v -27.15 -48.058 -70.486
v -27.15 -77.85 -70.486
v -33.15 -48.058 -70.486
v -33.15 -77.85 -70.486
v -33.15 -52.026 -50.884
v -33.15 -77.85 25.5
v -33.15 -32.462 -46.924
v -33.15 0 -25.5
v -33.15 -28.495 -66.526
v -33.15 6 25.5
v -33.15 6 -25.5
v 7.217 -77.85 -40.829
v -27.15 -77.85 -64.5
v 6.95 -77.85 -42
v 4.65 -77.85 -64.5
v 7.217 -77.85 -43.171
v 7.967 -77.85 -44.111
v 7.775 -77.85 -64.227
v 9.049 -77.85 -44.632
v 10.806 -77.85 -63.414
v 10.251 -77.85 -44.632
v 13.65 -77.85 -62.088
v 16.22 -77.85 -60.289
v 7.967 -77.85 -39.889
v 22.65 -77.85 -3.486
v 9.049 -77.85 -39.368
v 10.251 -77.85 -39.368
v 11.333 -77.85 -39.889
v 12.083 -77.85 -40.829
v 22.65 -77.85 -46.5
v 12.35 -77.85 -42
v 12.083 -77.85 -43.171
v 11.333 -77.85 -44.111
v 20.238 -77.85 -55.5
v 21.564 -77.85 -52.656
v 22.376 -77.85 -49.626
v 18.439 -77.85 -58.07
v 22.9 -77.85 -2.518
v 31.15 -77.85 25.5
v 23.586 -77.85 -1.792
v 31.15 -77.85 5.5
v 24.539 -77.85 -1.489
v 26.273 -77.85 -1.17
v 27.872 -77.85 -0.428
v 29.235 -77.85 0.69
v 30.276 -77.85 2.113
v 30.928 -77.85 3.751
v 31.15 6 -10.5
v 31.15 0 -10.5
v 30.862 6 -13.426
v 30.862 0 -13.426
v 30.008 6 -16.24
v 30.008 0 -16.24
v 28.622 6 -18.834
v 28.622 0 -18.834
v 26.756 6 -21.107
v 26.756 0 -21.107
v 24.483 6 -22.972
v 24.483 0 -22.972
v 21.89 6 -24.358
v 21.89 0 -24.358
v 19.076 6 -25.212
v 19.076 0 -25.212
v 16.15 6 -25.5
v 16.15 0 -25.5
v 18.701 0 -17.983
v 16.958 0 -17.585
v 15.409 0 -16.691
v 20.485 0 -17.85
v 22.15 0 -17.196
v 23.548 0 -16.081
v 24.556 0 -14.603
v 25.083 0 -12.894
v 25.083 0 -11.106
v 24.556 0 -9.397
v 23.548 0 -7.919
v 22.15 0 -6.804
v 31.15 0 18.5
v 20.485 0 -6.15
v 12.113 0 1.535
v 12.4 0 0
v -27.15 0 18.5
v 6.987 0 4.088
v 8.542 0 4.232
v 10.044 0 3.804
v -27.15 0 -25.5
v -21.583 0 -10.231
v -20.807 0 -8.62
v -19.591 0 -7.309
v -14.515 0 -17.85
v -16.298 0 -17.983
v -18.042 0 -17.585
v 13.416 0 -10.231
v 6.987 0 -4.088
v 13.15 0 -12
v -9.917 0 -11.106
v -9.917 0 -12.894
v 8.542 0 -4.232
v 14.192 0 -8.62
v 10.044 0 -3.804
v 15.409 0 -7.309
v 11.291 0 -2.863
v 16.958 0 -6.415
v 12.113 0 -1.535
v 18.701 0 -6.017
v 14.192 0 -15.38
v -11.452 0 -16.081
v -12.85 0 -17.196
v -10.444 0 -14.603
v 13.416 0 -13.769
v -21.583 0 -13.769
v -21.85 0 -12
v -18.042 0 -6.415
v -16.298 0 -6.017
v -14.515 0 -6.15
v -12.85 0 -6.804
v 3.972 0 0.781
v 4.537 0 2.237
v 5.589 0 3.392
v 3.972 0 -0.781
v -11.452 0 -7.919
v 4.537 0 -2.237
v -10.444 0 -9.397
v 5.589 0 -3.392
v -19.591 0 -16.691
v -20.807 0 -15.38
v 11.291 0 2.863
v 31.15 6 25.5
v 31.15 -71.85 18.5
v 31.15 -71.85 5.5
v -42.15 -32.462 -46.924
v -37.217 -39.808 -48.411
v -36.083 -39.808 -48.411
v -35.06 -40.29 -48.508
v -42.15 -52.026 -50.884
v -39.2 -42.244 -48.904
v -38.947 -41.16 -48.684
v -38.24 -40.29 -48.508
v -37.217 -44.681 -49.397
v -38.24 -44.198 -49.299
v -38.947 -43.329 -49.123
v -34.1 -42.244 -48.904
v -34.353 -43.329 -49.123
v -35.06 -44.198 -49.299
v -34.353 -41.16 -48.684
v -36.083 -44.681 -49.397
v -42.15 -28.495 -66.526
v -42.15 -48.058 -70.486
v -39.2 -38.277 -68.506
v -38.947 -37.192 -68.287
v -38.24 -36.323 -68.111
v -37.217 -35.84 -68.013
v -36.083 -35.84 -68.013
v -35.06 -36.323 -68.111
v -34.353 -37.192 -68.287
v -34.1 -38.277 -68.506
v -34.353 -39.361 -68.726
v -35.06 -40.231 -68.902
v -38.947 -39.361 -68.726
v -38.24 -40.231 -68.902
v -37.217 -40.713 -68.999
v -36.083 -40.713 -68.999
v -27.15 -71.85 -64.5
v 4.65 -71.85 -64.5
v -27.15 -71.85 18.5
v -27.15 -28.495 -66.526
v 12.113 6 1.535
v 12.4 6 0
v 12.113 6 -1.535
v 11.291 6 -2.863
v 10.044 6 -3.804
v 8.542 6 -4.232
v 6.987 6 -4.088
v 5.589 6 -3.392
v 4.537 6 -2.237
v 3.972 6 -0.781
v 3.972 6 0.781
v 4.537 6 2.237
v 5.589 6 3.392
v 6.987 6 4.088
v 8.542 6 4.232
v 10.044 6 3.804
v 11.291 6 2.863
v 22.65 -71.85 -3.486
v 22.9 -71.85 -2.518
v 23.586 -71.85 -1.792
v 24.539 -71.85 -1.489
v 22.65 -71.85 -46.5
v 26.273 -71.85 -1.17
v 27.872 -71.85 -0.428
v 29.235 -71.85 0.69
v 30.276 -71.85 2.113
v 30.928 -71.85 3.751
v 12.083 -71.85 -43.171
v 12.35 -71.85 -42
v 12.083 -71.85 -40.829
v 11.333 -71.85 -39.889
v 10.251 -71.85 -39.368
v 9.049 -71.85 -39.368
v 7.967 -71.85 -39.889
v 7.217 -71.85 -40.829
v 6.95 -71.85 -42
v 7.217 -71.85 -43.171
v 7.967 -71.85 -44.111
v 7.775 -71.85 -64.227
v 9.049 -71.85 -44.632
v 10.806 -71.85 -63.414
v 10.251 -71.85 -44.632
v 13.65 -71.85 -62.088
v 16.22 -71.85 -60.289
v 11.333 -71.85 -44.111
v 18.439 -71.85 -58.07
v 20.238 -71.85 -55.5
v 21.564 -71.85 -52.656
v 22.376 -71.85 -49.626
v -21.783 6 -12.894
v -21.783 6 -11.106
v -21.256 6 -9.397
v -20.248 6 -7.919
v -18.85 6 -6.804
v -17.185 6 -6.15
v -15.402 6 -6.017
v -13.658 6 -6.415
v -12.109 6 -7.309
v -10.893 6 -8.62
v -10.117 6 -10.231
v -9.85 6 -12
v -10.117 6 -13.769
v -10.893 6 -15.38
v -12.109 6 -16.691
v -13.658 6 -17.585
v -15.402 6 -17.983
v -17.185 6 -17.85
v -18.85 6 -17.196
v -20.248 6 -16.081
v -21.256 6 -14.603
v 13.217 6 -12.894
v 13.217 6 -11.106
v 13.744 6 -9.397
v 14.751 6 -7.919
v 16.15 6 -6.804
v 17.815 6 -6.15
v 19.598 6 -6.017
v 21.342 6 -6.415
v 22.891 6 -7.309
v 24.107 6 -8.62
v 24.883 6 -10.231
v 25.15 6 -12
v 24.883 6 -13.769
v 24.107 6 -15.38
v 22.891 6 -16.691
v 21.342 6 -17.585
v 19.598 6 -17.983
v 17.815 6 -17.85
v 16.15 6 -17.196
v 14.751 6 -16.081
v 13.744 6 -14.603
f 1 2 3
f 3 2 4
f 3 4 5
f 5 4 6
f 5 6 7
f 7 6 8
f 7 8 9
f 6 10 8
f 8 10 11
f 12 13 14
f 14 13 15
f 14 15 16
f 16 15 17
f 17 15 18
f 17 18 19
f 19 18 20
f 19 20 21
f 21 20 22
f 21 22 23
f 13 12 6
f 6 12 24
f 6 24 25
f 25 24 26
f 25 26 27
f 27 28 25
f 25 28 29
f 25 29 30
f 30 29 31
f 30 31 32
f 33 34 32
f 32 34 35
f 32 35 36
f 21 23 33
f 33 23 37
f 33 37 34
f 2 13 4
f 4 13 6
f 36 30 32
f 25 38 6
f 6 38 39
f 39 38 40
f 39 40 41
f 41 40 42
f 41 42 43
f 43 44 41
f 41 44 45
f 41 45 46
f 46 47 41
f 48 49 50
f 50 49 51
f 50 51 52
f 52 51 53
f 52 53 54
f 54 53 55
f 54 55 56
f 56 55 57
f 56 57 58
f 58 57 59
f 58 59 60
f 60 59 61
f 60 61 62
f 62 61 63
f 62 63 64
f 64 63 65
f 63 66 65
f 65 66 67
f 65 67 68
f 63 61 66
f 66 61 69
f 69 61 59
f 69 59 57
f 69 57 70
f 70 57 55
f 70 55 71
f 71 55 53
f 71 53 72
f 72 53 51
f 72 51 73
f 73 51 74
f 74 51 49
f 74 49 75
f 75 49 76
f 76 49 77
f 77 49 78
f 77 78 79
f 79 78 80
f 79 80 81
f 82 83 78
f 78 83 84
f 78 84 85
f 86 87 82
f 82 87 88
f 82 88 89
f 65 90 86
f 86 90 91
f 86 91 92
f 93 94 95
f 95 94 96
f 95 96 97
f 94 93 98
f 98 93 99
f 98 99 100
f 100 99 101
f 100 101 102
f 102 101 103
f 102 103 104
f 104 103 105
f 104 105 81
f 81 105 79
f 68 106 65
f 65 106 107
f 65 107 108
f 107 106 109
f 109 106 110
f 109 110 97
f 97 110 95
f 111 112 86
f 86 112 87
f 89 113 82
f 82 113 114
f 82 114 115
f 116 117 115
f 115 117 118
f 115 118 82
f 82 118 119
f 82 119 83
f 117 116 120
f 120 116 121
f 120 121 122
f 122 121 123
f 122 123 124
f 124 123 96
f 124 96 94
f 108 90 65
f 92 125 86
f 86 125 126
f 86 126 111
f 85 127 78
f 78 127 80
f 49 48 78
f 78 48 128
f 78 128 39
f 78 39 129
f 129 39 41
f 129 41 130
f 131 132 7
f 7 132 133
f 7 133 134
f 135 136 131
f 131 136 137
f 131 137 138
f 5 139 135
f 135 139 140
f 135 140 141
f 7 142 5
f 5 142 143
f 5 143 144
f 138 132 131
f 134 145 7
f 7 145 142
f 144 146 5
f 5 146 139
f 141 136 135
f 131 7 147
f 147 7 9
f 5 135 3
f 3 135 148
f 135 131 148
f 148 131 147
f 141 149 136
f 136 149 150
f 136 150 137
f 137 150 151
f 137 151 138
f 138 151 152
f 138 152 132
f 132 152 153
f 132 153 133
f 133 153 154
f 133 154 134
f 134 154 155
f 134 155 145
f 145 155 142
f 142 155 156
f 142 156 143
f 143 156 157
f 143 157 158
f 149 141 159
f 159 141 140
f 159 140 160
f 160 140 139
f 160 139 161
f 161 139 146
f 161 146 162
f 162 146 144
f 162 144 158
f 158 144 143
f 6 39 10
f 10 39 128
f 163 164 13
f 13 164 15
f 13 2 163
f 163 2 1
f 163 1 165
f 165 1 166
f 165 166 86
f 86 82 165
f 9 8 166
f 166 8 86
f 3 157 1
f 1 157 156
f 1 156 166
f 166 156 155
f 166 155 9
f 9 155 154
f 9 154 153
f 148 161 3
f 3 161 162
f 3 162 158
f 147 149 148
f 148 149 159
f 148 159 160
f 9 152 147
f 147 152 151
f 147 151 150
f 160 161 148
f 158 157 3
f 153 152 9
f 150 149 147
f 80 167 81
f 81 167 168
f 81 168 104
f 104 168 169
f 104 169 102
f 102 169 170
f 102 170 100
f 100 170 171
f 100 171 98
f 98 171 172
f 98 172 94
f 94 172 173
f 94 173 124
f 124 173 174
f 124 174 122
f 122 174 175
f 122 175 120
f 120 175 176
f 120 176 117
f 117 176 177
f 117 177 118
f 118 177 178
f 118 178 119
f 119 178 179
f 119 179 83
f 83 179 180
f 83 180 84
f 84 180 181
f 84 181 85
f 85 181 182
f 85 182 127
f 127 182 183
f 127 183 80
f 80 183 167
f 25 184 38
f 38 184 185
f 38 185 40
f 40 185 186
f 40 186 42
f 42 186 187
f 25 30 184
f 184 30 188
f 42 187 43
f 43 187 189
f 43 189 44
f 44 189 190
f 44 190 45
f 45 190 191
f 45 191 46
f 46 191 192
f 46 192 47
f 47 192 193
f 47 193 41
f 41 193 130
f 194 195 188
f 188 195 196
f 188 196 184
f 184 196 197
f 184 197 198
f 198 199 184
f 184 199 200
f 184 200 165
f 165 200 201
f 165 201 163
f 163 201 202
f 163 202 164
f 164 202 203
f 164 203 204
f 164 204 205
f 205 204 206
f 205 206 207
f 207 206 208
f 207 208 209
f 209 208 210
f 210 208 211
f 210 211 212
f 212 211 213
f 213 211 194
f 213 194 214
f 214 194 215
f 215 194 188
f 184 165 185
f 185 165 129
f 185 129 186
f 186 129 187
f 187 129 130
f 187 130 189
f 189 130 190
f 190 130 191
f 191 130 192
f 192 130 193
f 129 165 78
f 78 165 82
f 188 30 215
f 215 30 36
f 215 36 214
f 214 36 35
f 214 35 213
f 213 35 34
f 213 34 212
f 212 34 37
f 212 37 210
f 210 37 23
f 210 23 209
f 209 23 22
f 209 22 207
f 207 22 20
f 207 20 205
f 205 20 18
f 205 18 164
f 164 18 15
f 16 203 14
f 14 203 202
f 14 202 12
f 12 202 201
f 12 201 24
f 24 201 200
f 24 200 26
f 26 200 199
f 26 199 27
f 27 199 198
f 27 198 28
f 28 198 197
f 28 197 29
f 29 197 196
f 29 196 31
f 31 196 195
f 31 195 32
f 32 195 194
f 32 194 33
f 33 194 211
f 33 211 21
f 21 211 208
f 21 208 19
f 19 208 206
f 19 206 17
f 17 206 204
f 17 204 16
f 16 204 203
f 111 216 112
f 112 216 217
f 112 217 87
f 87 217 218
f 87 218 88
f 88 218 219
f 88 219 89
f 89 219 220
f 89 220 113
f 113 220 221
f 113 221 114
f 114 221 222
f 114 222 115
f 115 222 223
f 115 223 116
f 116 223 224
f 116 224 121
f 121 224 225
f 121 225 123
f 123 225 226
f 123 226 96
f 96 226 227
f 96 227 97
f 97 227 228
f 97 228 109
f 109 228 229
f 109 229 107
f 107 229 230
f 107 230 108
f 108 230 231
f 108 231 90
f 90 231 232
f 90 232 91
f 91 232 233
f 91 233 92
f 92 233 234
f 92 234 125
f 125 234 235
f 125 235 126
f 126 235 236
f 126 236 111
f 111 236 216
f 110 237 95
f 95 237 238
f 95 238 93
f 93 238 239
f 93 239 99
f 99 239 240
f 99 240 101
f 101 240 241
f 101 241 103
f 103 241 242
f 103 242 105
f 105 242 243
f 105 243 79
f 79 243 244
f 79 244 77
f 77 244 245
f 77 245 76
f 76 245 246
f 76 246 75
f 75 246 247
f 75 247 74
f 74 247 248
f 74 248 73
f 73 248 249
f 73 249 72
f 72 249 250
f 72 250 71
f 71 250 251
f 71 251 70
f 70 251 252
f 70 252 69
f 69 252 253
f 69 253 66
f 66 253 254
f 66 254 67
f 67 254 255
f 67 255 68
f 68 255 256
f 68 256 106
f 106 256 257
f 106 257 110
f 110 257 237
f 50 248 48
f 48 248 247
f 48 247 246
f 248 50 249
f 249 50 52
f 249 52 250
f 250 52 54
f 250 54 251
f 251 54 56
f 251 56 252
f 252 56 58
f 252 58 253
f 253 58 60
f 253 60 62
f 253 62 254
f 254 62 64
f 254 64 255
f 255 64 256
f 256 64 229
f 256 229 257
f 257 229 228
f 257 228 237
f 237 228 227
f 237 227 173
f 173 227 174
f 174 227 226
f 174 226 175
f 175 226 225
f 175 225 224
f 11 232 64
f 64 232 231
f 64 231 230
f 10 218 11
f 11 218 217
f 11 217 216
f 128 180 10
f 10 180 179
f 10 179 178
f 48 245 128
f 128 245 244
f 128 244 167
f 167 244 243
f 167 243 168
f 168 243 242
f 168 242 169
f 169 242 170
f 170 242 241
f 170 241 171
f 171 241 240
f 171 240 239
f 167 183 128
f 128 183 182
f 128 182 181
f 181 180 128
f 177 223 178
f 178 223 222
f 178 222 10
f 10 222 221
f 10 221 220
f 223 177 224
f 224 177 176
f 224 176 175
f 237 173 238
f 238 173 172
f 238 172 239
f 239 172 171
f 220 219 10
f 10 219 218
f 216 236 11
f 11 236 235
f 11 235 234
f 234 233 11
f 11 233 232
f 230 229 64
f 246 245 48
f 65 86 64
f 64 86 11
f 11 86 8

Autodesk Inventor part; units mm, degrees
ref_plane "YZ Plane" through (0, 0, 0) normal (1, 0, 0) x (0, 1, 0)
ref_plane "XZ Plane" through (0, 0, 0) normal (0, 1, 0) x (-1, 0, 0)
ref_plane "XY Plane" through (0, 0, 0) normal (0, 0, 1) x (1, 0, 0)
sketch "Sketch1" plane through (0, 0, 0) normal (0, 1, 0) x (-1, 0, 0)
  line L0 (0, -25.5) -> (-34.15, -25.5)
  line L1 (-34.15, -25.5) -> (-34.15, 0)
  line L2 (-34.15, 0) -> (-34.15, 25.5)
  line L3 (-34.15, 25.5) -> (0, 25.5)
  line L4 (0, 25.5) -> (34.15, 25.5)
  line L5 (34.15, 25.5) -> (34.15, 0)
  line L6 (34.15, 0) -> (34.15, -25.5)
  line L7 (34.15, -25.5) -> (0, -25.5)
  point P0 (0, 0)
extrude "Extrusion1" add sketch "Sketch1" along normal blind 7
sketch "Sketch3" plane through (-34.15, 0, 25.5) normal (0, 0, 1) x (1, 0, 0)
  line L0 (0, 0) -> (0, -78.85)
  point P0 (34.15, 0)
  dimension "d7" = 78.85
sketch "Sketch4" plane through (-34.15, 0, -25.5) normal (-1, 0, 0) x (0, 0, 1)
  line L0 (51, 0) -> (51, -78.85)
  line L1 (51, -78.85) -> (-39, -78.85)
  line L2 (-39, -78.85) -> (-39, -71.85)
  line L3 (0, 0) -> (-39, -71.85)
  line L4 (0, 0) -> (51, 0)
  point P0 (25.5, 0)
  dimension "d10" = 90
  dimension "d11" = 7
extrude "Extrusion2" add sketch "Sketch4" against normal blind 7
sketch "Sketch6" plane through (0, 7, 0) normal (0, 1, 0) x (1, 0, 0)
  line L0 (34.15, -25.5) -> (34.15, 25.5) projected
  line L1 (34.15, 25.5) -> (34.15, 0)
  line L2 (-34.15, 25.5) -> (-34.15, -25.5) projected
  circle A0 centre (8.15, 0) radius 5
  point P0 (0, 0)
  dimension "d20" = 10
extrude "Extrusion4" cut sketch "Sketch6" against normal blind 10
sketch "Sketch7" plane through (-27.15, 0, -25.5) normal (1, 0, 0) x (0, 0, -1)
  line L0 (-51, -78.85) -> (39, -78.85) projected
  line L1 (-51, -78.85) -> (39, -78.85)
  line L2 (39, -78.85) -> (39, -71.85) projected
  line L3 (39, -78.85) -> (39, -71.85)
  line L4 (39, -71.85) -> (-51, -71.85)
  line L5 (-51, 0) -> (-51, -78.85) projected
  line L6 (-51, -78.85) -> (-51, -71.85)
  point P0 (-25.5, 0)
sketch "Sketch8" plane through (0, 0, 0) normal (0, -1, 0) x (1, 0, 0)
  circle A0 centre (8.15, 0) radius 5 projected
  line L0 (8.15, 18.5) -> (34.15, 18.5)
  line L1 (34.15, 25.5) -> (34.15, -25.5) projected
  line L2 (8.15, 25.5) -> (34.15, 25.5)
  line L3 (8.15, 25.5) -> (-27.15, 25.5)
  line L4 (-27.15, 25.5) -> (-27.15, -25.5) projected
  line L5 (8.15, 18.5) -> (-27.15, 18.5)
  line L6 (34.15, 25.5) -> (34.15, 18.5)
  line L7 (-27.15, 25.5) -> (-27.15, 18.5)
  point P0 (0, 0)
extrude "Extrusion6" add sketch "Sketch7" along normal blind 58.5
extrude "Extrusion7" add sketch "Sketch8" along normal blind 78.75 contours L5 L4 L3 L2 L1 L0
sketch "Sketch9" plane through (31.35, 0, -25.5) normal (1, 0, 0) x (0, 0, -1)
  line L0 (-51, -78.75) -> (-51, 7) projected
  line L1 (-44, 0) -> (-44, -71.85) projected
  line L2 (-51, -78.75) -> (-44, -78.75)
  line L3 (-44, -78.75) -> (-44, -71.85)
  line L4 (-44, -71.85) -> (-51, -71.85)
  line L5 (-51, -71.85) -> (-51, -78.75)
  point P0 (-25.5, 0)
extrude "Extrusion8" cut sketch "Sketch9" along normal blind 10
sketch "Boceto11" plane through (-34.15, -78.85, -64.5) normal (0, -1, 0) x (1, 0, 0)
  line L0 (72.0718, 89.9914) -> (72.0718, 37.9883)
  line L1 (72.0718, 37.9883) -> (65.5278, 37.9883)
  line L2 (65.5278, 37.9883) -> (65.5278, 89.9914)
  line L3 (72.0718, 89.9914) -> (72.0718, 92.1751)
  line L4 (72.0718, 92.1751) -> (65.5278, 92.1751)
  line L5 (65.5278, 92.1751) -> (65.5278, 89.9914)
  point P0 (34.15, 64.5)
extrude "Extrusión9" cut sketch "Boceto11" against normal blind 1000
sketch "Boceto24" plane through (-27.15, 0, -25.5) normal (0, 0, -1) x (-1, 0, 0)
  line L0 (7, -71.85) -> (7, -78.85) projected
  line L1 (7, -78.35) -> (7, -78.85)
  line L2 (7, -78.85) -> (-58.5, -78.85) projected
  line L3 (-58.5, -78.85) -> (-58.5, -77.85)
  line L4 (-58.5, -71.85) -> (-58.5, -78.85) projected
  line L5 (-58.5, -77.85) -> (6, -77.85)
  line L6 (7, -77.85) -> (7, -78.85)
  line L7 (7, -78.85) -> (-58.8392, -78.85)
  line L8 (-58.5278, 7) -> (7, 7) projected
  line L9 (7, -78.85) -> (7, 7)
  line L10 (7, 7) -> (6, 7)
  line L11 (6, 6) -> (6, -77.85)
  line L12 (-58.5278, -71.85) -> (-58.5278, 7) projected
  line L13 (-58.5278, 7) -> (-58.5278, 6)
  line L14 (-58.5278, 6) -> (6, 6)
  line L15 (7, 0) -> (7, 7) projected
  line L16 (7, 6) -> (7, 7)
  line L17 (7, 7) -> (-58.5278, 7)
  point P0 (-27.15, 0)
  dimension "d65" = 1
  dimension "d66" = 1
  dimension "d67" = 1
extrude "Extrusión19" cut sketch "Boceto24" along normal mid plane 1000
sketch "Boceto27" plane through (31.3778, 0, -25.5) normal (0, 0, -1) x (-1, 0, 0)
  line L0 (0, -71.85) -> (0, 6) projected
  line L1 (0, 6) -> (0.228, 6)
  line L2 (0, 6) -> (64.5278, 6) projected
  line L3 (0.228, 6) -> (0.228, -77.85)
  line L4 (0.0278, -77.85) -> (64.5278, -77.85) projected
  line L5 (0.0278, -71.85) -> (0.0278, -77.85) projected
  line L6 (0.228, -77.85) -> (0.0278, -77.85)
  line L7 (0.0278, -77.85) -> (0, 6)
  line L8 (0, 6) -> (0, -77.85)
  line L9 (0, -77.85) -> (0.0278, -77.85)
  point P0 (31.3778, 0)
  dimension "d73" = 0.228
extrude "Extrusión21" cut sketch "Boceto27" along normal mid plane 1000
sketch "Boceto31" plane through (-33.15, 0, -25.5) normal (-1, 0, 0) x (0, 0, 1)
  circle A0 centre (64.38, -38.5153) radius 2.6
  point P0 (25.5, 0)
  point P1 (64.38, -49.4573)
sketch "Boceto32" plane through (-27.15, -71.85, 18.5) normal (0, 1, 0) x (1, 0, 0)
  circle A0 centre (47, 71.5) radius 5 projected
  circle A1 centre (47, 71.5) radius 5
  line L0 (52, 71.5) -> (58.2998, 71.5)
  line L1 (67, 83) -> (67, -7)
  line L2 (58.2998, -7) -> (-6, -7) projected
  line L3 (67, -7) -> (58.2998, -7)
  line L4 (58.2998, -7) -> (58.2998, 83)
  line L5 (47, 76.5) -> (47, 83)
  line L6 (-6, 83) -> (0, 83) projected
  line L7 (-6, 83) -> (-6, 91.5)
  line L8 (-6, 91.5) -> (67, 91.5)
  line L9 (67, 91.5) -> (67, 83)
  line L10 (-6, 83) -> (58.2998, 83)
  point P0 (27.15, 18.5)
extrude "Extrusión23" add sketch "Boceto32" against normal blind 6 contours L4 L10 L6 L7 L8 L9 L1 L3
sketch "Boceto33" plane through (-33.15, -77.85, 25.5) normal (-1, 0, 0) x (0, 0, 1)
  line L0 (0, 83.85) -> (0, 0) projected
  line L1 (0, 74.4354) -> (10.1255, 74.4354)
  line L2 (10.1255, 74.4354) -> (10.1255, 56.6115)
  line L3 (10.9445, 54.9975) -> (18.0243, 49.8171)
  line L4 (18.8039, 48.5979) -> (20.1084, 42.1205)
  line L5 (0, 11.6181) -> (18.1478, 11.6181)
  line L6 (20.1478, 13.6181) -> (20.1478, 41.7256)
  arc A0 (10.1255, 56.6115) -> (10.9445, 54.9975) centre (12.1255, 56.6115) ccw
  arc A1 (18.8039, 48.5979) -> (18.0243, 49.8171) centre (16.8433, 48.203) ccw
  arc A2 (20.1478, 41.7256) -> (20.1084, 42.1205) centre (18.1478, 41.7256) ccw
  arc A3 (18.1478, 11.6181) -> (20.1478, 13.6181) centre (18.1478, 13.6181) ccw
  point P0 (-25.5, 77.85)
  dimension "d91" = 2
extrude "Extrusión24" add sketch "Boceto33" against normal blind 6
extrude "Extrusión25" cut sketch "Boceto31" against normal blind 6
sketch "Boceto34" plane through (-27.15, -77.85, 25.5) normal (1, 0, 0) x (0, 0, -1)
  line L0 (-18.1478, 11.6181) -> (-21.8775, 11.6181)
  line L1 (-21.8775, 11.6181) -> (-21.8775, 48.067)
  line L2 (-21.8775, 48.067) -> (-10.1255, 56.8358)
  line L3 (-10.1255, 74.4354) -> (-10.1255, 56.6115) projected
  line L4 (-10.1255, 56.8358) -> (-10.1255, 48.9642)
  line L5 (-10.1255, 48.9642) -> (-16.6729, 42.1735)
  line L6 (-16.6729, 42.1735) -> (-18.1478, 11.6181)
  point P0 (25.5, 77.85)
extrude "Extrusión26" add sketch "Boceto34" against normal blind 6
fillet "Empalme5" radius 10 3 edges at (-30.15, -21.0142, 35.6255) (-30.15, -29.783, 47.3775) (-30.15, -66.2319, 47.3775)
sketch "Boceto37" plane through (-33.15, 6, 25.5) normal (0, 1, 0) x (1, 0, 0)
  circle A0 centre (52.2998, 37.5) radius 6
  circle A1 centre (17.3, 37.5) radius 6
  line L0 (64.2998, 37.5) -> (52.2998, 37.5)
  circle A2 centre (52.2998, 37.5) radius 6
  dimension "d109" = 12
  dimension "d110" = 12
  dimension "d229" = 12
extrude "Extrusión29" cut sketch "Boceto37" against normal blind 6.5
sketch "Boceto39" plane through (-27.15, -71.85, 18.5) normal (0, 1, 0) x (1, 0, 0)
  line L0 (58.2998, -7) -> (58.2998, 0)
  line L1 (58.2998, 44) -> (58.2998, 91.5)
  line L2 (-6, 91.5) -> (67, 91.5) projected
  line L3 (0, 0) -> (58.2998, 0) projected
  line L4 (58.2998, 0) -> (58.2998, -7) projected
  line L5 (58.2998, -7) -> (67, -7) projected
  line L6 (58.2998, -7) -> (67, -7)
  line L7 (67, 91.5) -> (-6, 91.5) projected
  line L8 (67, -7) -> (67, 91.5)
  line L9 (67, 91.5) -> (58.2998, 91.5)
  line L10 (58.2998, 0) -> (58.2998, 44)
  point P0 (27.15, 18.5)
extrude "Extrusión31" cut sketch "Boceto39" against normal blind 10
sketch "Boceto41" plane through (-27.15, -71.85, 18.5) normal (0, 1, 0) x (1, 0, 0)
  circle A0 centre (36.8, 60.5) radius 2.7
  line L0 (-6, -7) -> (-6, 44) projected
  line L1 (-6, -7) -> (36.8, -7)
  line L2 (36.8, -7) -> (36.8, 60.5)
  line L3 (36.8, 60.5) -> (-6, 60.5)
  line L4 (-6, 60.5) -> (-6, -7)
  point P0 (27.15, 18.5)
  point P1 (58.2998, 91.5)
  dimension "d126" = 5.4
  dimension "d213" = 42.8
  dimension "d214" = 67.5
extrude "Extrusión32" cut sketch "Boceto41" against normal blind 10 contours A0 L2 L3 | L3 L2 A0
sketch "Sketch42" plane through (-27.15, -71.85, 18.5) normal (0, 1, 0) x (1, 0, 0)
  circle A0 centre (36.8, 60.5) radius 2.7 projected
  line L0 (36.8, 63.2) -> (36.8, 60.5)
  circle A1 centre (31.7998, 65) radius 18
  line L1 (0, 0) -> (0, 83) projected
  line L2 (0, 83) -> (31.7998, 83)
  line L3 (58.2998, 91.5) -> (-6, 91.5) projected
  line L4 (49.7998, 65) -> (49.7998, 0)
  line L5 (58.2998, 0) -> (0, 0) projected
  line L6 (0, 0) -> (58.2998, 0) projected
  line L7 (49.7998, 0) -> (58.2998, 0)
  line L8 (58.2998, 91.5) -> (58.2998, -7) projected
  line L9 (58.2998, 0) -> (58.2998, 91.5)
  line L10 (0, 83) -> (0, 44) projected
  line L11 (0, 83) -> (-6, 83)
  line L12 (-6, 91.5) -> (-6, 83) projected
  line L13 (-6, 83) -> (-6, 91.5)
  line L14 (58.2998, 91.5) -> (58.2998, 0) projected
  line L15 (-6, 91.5) -> (58.2998, 91.5)
  point P0 (27.15, 18.5)
  point P1 (58.2998, -7)
  dimension "d129" = 36
extrude "Extrusion33" cut sketch "Sketch42" against normal blind 10 contours A1 L2 L11 L12 L3 L8 L5 L4
sketch "Sketch43" plane through (-27.15, -71.85, 18.5) normal (0, 0, -1) x (-1, 0, 0)
  line L0 (6, -6) -> (-58.2998, -6) projected
  line L1 (0, 0) -> (-49.7998, 0) projected
  line L2 (-58.2998, -6) -> (-49.7998, -6)
  line L3 (-49.7998, -6) -> (-49.7998, 0)
  line L4 (-49.7998, 0) -> (-58.2998, 0)
  line L5 (-58.2998, 0) -> (-58.2998, -6)
  point P0 (-27.15, 71.85)
extrude "Extrusion34" add sketch "Sketch43" along normal blind 20
fillet "Fillet7" radius 7 1 edges at (31.1498, -74.85, -1.5)
fillet "Fillet8" radius 2 1 edges at (22.6498, -74.85, -1.5)
sketch "Sketch44" plane through (-33.15, 0, -25.5) normal (-1, 0, 0) x (0, 0, 1)
  line L0 (68.8577, -26.7837) -> (65.1452, -24.0136) projected
  line L1 (61.1255, -3.4146) -> (51, -3.4146) projected
  line L2 (65.1452, -24.0136) -> (51, -24.0136)
  line L3 (51, -24.0136) -> (51, -3.4146)
  line L4 (51, -3.4146) -> (65.1452, -3.4146)
  line L5 (65.1452, -3.4146) -> (65.1452, -24.0136)
  point P0 (25.5, 0)
extrude "Extrusion35" cut sketch "Sketch44" against normal blind 20
sketch "Sketch45" plane through (-33.15, 6, 25.5) normal (0, 1, 0) x (1, 0, 0)
  circle A0 centre (41.3, 25.5) radius 5 projected
  circle A1 centre (41.3, 25.5) radius 4.25
  circle A2 centre (41.3, 25.5) radius 5
  point P0 (33.15, 25.5)
  dimension "d138" = 8.5
extrude "Extrusion36" add sketch "Sketch45" against normal blind 6
sketch "Sketch47" plane through (-33.15, 0, -25.5) normal (-1, 0, 0) x (0, 0, 1)
  line L0 (-44.1201, -43.7798) -> (-41.0263, -28.4947)
  line L1 (-39, -71.85) -> (0, 0) projected
  line L2 (-41.0263, -28.4947) -> (0, 0)
  line L3 (0, 0) -> (-39, -71.85)
  line L4 (-44.1201, -43.7798) -> (-44.1201, -71.85)
  line L5 (-44.1201, -71.85) -> (-39, -71.85)
  point P0 (25.5, 0)
extrude "Extrusion37" add sketch "Sketch47" against normal blind 6
sketch "Sketch50" plane through (-33.15, 6, -25.5) normal (-1, 0, 0) x (0, 0, 1)
  line L0 (-44.1201, -49.7798) -> (-41.0263, -34.4947) projected
  line L1 (-41.0263, -34.4947) -> (-46.4891, -61.4839)
  line L2 (-39, -83.85) -> (51, -83.85) projected
  line L3 (-39, -83.85) -> (-46.4891, -83.85)
  line L4 (-46.4891, -83.85) -> (-46.4891, -61.4839)
  line L5 (-41.0263, -34.4947) -> (-39, -69.2782)
  line L6 (-39, -69.2782) -> (-39, -83.85)
  point P0 (25.5, -6)
extrude "Extrusion38" add sketch "Sketch50" against normal blind 6
sketch "Sketch51" plane through (-33.15, 6, -25.5) normal (-1, 0, 0) x (0, 0, 1)
  line L0 (-41.0263, -34.4947) -> (-46.4891, -61.4839) projected
  line L1 (-41.0263, -34.4947) -> (-46.4891, -61.4839)
  line L2 (-46.4891, -61.4839) -> (-15.8808, -61.4839)
  line L3 (-41.0263, -34.4947) -> (-15.8808, -34.4947)
  line L4 (-15.8808, -34.4947) -> (-15.8808, -61.4839)
  point P0 (25.5, -6)
extrude "Extrusion39" add sketch "Sketch51" along normal blind 9
sketch "Sketch54" plane through (-33.15, 6, -25.5) normal (-1, 0, 0) x (0, 0, 1)
  line L0 (51, -72.2319) -> (51, -83.85) projected
  line L1 (51, -83.85) -> (86.3988, -83.85)
  line L2 (86.3988, -83.85) -> (86.3988, -18.2813)
  line L3 (86.3988, -18.2813) -> (51, -18.2813)
  line L4 (51, -18.2813) -> (51, -83.85)
  point P0 (25.5, -6)
extrude "Extrusion41" cut sketch "Sketch54" against normal blind 26.989
sketch "Sketch55" plane through (-33.15, -55.4839, -71.9891) normal (0, 0.1984, -0.9801) x (-1, 0, 0)
  line L0 (9, 6.0722) -> (9, 32.525) projected
  line L1 (9, 17.5562) -> (3.5, 17.5562)
  line L2 (9, 17.5562) -> (14.5, 17.5562) construction
  circle A0 centre (3.5, 17.5562) radius 2.55
  point P0 (-33.15, 68.6627)
  point P1 (9, 32.5248)
  dimension "d153" = 5.5
  dimension "d154" = 180
  dimension "d155" = 5.1
extrude "Extrusion42" cut sketch "Sketch55" against normal blind 20
sketch "Sketch71" plane through (-33.15, -55.4839, -71.9891) normal (0, 0.1984, -0.9801) x (-1, 0, 0)
  circle A0 centre (3.5, 17.5562) radius 2.55 projected
  line L0 (3.5, 17.5562) -> (3.5, 7.5762)
  line L1 (0, 27.5365) -> (9, 27.5365) projected
  line L2 (0, 79.6022) -> (0, -2.5812) projected
  line L3 (9, 27.5365) -> (9, 0) projected
  line L4 (0, 17.5562) -> (9, 17.5562)
  line L5 (9, 17.5562) -> (9, 7.5762)
  line L6 (9, 7.5762) -> (0, 7.5762)
  line L7 (0, 7.5762) -> (0, 17.5562)
  line L8 (9, 0) -> (0, 0)
  line L9 (0, 0) -> (0, 7.5762)
  line L10 (0, 7.5762) -> (9, 7.5762)
  line L11 (9, 7.5762) -> (9, 0)
  point P0 (-33.15, 68.6627)
  point P1 (0, 0)
  point P2 (0, 7.5762)
  dimension "d215" = 9.98
extrude "Extrusion57" cut sketch "Sketch71" against normal blind 60 contours L6 L3 L8 L2
sketch "Sketch73" plane through (-42.15, 6, -25.5) normal (-1, 0, 0) x (0, 0, 1)
  line L0 (-46.4891, -61.4839) -> (-41.0263, -34.4947) projected
  line L1 (-41.0263, -34.4947) -> (-42.9731, -44.113)
  line L2 (-42.9731, -44.113) -> (-23.3706, -48.0807)
  line L3 (-41.0263, -34.4947) -> (-15.8808, -34.4947) projected
  line L4 (-20.6207, -34.4947) -> (-25.3836, -58.026)
  line L5 (-44.9861, -54.0583) -> (-15.8808, -59.9494) projected
  line L6 (-25.3836, -58.026) -> (-15.8808, -59.9494)
  line L7 (-20.6207, -34.4947) -> (-5.4041, -34.4947)
  line L8 (-5.4041, -34.4947) -> (-5.4041, -64.759)
  line L9 (-5.4041, -64.759) -> (-28.8644, -65.7075)
  line L10 (-28.8644, -65.7075) -> (-25.3836, -58.026)
  point P0 (25.5, -6)
  dimension "d218" = 20
sketch "Sketch74" plane through (-27.15, -55.4839, -71.9891) normal (0, 0.1984, -0.9801) x (-1, 0, 0)
  line L0 (6, 27.5365) -> (0, 27.5365) projected
  line L1 (6, 27.5365) -> (16.0486, 27.5365)
  line L2 (16.0486, 27.5365) -> (16.0486, 36.432)
  line L3 (16.0486, 36.432) -> (6, 36.432)
  line L4 (6, 36.432) -> (6, 27.5365)
  point P0 (-27.15, 68.6627)
extrude "Extrusion58" cut sketch "Sketch74" against normal blind 60
extrude "Extrusion59" cut sketch "Sketch73" against normal blind 9 contours L4 L3 L7 L8 L9 L10
fillet "Fillet10" radius 15 1 edges at (31.1498, 3, -25.5)
sketch "Sketch76" plane through (-33.15, -77.85, 25.5) normal (-1, 0, 0) x (0, 0, 1)
  line L0 (-95.9861, 29.7917) -> (-76.3836, 25.824) projected
  line L1 (-95.9861, 29.7917) -> (-95.9861, 0)
  line L2 (-97.4891, 0) -> (0, 0) projected
  line L3 (-97.4891, 22.3661) -> (-95.9861, 29.7917) projected
  line L4 (-97.4891, 0) -> (-97.4891, 22.3661)
  line L5 (-97.4891, 22.3661) -> (-95.9861, 29.7917)
  point P0 (-25.5, 77.85)
extrude "Extrusion60" cut sketch "Sketch76" against normal blind 9
sketch "Sketch78" plane through (-27.15, -71.85, 18.5) normal (0, 0, -1) x (-1, 0, 0)
  point P0 (-27.15, 71.85)
properties part number "DC23[R][FD1]" material "Aluminio 6061"
